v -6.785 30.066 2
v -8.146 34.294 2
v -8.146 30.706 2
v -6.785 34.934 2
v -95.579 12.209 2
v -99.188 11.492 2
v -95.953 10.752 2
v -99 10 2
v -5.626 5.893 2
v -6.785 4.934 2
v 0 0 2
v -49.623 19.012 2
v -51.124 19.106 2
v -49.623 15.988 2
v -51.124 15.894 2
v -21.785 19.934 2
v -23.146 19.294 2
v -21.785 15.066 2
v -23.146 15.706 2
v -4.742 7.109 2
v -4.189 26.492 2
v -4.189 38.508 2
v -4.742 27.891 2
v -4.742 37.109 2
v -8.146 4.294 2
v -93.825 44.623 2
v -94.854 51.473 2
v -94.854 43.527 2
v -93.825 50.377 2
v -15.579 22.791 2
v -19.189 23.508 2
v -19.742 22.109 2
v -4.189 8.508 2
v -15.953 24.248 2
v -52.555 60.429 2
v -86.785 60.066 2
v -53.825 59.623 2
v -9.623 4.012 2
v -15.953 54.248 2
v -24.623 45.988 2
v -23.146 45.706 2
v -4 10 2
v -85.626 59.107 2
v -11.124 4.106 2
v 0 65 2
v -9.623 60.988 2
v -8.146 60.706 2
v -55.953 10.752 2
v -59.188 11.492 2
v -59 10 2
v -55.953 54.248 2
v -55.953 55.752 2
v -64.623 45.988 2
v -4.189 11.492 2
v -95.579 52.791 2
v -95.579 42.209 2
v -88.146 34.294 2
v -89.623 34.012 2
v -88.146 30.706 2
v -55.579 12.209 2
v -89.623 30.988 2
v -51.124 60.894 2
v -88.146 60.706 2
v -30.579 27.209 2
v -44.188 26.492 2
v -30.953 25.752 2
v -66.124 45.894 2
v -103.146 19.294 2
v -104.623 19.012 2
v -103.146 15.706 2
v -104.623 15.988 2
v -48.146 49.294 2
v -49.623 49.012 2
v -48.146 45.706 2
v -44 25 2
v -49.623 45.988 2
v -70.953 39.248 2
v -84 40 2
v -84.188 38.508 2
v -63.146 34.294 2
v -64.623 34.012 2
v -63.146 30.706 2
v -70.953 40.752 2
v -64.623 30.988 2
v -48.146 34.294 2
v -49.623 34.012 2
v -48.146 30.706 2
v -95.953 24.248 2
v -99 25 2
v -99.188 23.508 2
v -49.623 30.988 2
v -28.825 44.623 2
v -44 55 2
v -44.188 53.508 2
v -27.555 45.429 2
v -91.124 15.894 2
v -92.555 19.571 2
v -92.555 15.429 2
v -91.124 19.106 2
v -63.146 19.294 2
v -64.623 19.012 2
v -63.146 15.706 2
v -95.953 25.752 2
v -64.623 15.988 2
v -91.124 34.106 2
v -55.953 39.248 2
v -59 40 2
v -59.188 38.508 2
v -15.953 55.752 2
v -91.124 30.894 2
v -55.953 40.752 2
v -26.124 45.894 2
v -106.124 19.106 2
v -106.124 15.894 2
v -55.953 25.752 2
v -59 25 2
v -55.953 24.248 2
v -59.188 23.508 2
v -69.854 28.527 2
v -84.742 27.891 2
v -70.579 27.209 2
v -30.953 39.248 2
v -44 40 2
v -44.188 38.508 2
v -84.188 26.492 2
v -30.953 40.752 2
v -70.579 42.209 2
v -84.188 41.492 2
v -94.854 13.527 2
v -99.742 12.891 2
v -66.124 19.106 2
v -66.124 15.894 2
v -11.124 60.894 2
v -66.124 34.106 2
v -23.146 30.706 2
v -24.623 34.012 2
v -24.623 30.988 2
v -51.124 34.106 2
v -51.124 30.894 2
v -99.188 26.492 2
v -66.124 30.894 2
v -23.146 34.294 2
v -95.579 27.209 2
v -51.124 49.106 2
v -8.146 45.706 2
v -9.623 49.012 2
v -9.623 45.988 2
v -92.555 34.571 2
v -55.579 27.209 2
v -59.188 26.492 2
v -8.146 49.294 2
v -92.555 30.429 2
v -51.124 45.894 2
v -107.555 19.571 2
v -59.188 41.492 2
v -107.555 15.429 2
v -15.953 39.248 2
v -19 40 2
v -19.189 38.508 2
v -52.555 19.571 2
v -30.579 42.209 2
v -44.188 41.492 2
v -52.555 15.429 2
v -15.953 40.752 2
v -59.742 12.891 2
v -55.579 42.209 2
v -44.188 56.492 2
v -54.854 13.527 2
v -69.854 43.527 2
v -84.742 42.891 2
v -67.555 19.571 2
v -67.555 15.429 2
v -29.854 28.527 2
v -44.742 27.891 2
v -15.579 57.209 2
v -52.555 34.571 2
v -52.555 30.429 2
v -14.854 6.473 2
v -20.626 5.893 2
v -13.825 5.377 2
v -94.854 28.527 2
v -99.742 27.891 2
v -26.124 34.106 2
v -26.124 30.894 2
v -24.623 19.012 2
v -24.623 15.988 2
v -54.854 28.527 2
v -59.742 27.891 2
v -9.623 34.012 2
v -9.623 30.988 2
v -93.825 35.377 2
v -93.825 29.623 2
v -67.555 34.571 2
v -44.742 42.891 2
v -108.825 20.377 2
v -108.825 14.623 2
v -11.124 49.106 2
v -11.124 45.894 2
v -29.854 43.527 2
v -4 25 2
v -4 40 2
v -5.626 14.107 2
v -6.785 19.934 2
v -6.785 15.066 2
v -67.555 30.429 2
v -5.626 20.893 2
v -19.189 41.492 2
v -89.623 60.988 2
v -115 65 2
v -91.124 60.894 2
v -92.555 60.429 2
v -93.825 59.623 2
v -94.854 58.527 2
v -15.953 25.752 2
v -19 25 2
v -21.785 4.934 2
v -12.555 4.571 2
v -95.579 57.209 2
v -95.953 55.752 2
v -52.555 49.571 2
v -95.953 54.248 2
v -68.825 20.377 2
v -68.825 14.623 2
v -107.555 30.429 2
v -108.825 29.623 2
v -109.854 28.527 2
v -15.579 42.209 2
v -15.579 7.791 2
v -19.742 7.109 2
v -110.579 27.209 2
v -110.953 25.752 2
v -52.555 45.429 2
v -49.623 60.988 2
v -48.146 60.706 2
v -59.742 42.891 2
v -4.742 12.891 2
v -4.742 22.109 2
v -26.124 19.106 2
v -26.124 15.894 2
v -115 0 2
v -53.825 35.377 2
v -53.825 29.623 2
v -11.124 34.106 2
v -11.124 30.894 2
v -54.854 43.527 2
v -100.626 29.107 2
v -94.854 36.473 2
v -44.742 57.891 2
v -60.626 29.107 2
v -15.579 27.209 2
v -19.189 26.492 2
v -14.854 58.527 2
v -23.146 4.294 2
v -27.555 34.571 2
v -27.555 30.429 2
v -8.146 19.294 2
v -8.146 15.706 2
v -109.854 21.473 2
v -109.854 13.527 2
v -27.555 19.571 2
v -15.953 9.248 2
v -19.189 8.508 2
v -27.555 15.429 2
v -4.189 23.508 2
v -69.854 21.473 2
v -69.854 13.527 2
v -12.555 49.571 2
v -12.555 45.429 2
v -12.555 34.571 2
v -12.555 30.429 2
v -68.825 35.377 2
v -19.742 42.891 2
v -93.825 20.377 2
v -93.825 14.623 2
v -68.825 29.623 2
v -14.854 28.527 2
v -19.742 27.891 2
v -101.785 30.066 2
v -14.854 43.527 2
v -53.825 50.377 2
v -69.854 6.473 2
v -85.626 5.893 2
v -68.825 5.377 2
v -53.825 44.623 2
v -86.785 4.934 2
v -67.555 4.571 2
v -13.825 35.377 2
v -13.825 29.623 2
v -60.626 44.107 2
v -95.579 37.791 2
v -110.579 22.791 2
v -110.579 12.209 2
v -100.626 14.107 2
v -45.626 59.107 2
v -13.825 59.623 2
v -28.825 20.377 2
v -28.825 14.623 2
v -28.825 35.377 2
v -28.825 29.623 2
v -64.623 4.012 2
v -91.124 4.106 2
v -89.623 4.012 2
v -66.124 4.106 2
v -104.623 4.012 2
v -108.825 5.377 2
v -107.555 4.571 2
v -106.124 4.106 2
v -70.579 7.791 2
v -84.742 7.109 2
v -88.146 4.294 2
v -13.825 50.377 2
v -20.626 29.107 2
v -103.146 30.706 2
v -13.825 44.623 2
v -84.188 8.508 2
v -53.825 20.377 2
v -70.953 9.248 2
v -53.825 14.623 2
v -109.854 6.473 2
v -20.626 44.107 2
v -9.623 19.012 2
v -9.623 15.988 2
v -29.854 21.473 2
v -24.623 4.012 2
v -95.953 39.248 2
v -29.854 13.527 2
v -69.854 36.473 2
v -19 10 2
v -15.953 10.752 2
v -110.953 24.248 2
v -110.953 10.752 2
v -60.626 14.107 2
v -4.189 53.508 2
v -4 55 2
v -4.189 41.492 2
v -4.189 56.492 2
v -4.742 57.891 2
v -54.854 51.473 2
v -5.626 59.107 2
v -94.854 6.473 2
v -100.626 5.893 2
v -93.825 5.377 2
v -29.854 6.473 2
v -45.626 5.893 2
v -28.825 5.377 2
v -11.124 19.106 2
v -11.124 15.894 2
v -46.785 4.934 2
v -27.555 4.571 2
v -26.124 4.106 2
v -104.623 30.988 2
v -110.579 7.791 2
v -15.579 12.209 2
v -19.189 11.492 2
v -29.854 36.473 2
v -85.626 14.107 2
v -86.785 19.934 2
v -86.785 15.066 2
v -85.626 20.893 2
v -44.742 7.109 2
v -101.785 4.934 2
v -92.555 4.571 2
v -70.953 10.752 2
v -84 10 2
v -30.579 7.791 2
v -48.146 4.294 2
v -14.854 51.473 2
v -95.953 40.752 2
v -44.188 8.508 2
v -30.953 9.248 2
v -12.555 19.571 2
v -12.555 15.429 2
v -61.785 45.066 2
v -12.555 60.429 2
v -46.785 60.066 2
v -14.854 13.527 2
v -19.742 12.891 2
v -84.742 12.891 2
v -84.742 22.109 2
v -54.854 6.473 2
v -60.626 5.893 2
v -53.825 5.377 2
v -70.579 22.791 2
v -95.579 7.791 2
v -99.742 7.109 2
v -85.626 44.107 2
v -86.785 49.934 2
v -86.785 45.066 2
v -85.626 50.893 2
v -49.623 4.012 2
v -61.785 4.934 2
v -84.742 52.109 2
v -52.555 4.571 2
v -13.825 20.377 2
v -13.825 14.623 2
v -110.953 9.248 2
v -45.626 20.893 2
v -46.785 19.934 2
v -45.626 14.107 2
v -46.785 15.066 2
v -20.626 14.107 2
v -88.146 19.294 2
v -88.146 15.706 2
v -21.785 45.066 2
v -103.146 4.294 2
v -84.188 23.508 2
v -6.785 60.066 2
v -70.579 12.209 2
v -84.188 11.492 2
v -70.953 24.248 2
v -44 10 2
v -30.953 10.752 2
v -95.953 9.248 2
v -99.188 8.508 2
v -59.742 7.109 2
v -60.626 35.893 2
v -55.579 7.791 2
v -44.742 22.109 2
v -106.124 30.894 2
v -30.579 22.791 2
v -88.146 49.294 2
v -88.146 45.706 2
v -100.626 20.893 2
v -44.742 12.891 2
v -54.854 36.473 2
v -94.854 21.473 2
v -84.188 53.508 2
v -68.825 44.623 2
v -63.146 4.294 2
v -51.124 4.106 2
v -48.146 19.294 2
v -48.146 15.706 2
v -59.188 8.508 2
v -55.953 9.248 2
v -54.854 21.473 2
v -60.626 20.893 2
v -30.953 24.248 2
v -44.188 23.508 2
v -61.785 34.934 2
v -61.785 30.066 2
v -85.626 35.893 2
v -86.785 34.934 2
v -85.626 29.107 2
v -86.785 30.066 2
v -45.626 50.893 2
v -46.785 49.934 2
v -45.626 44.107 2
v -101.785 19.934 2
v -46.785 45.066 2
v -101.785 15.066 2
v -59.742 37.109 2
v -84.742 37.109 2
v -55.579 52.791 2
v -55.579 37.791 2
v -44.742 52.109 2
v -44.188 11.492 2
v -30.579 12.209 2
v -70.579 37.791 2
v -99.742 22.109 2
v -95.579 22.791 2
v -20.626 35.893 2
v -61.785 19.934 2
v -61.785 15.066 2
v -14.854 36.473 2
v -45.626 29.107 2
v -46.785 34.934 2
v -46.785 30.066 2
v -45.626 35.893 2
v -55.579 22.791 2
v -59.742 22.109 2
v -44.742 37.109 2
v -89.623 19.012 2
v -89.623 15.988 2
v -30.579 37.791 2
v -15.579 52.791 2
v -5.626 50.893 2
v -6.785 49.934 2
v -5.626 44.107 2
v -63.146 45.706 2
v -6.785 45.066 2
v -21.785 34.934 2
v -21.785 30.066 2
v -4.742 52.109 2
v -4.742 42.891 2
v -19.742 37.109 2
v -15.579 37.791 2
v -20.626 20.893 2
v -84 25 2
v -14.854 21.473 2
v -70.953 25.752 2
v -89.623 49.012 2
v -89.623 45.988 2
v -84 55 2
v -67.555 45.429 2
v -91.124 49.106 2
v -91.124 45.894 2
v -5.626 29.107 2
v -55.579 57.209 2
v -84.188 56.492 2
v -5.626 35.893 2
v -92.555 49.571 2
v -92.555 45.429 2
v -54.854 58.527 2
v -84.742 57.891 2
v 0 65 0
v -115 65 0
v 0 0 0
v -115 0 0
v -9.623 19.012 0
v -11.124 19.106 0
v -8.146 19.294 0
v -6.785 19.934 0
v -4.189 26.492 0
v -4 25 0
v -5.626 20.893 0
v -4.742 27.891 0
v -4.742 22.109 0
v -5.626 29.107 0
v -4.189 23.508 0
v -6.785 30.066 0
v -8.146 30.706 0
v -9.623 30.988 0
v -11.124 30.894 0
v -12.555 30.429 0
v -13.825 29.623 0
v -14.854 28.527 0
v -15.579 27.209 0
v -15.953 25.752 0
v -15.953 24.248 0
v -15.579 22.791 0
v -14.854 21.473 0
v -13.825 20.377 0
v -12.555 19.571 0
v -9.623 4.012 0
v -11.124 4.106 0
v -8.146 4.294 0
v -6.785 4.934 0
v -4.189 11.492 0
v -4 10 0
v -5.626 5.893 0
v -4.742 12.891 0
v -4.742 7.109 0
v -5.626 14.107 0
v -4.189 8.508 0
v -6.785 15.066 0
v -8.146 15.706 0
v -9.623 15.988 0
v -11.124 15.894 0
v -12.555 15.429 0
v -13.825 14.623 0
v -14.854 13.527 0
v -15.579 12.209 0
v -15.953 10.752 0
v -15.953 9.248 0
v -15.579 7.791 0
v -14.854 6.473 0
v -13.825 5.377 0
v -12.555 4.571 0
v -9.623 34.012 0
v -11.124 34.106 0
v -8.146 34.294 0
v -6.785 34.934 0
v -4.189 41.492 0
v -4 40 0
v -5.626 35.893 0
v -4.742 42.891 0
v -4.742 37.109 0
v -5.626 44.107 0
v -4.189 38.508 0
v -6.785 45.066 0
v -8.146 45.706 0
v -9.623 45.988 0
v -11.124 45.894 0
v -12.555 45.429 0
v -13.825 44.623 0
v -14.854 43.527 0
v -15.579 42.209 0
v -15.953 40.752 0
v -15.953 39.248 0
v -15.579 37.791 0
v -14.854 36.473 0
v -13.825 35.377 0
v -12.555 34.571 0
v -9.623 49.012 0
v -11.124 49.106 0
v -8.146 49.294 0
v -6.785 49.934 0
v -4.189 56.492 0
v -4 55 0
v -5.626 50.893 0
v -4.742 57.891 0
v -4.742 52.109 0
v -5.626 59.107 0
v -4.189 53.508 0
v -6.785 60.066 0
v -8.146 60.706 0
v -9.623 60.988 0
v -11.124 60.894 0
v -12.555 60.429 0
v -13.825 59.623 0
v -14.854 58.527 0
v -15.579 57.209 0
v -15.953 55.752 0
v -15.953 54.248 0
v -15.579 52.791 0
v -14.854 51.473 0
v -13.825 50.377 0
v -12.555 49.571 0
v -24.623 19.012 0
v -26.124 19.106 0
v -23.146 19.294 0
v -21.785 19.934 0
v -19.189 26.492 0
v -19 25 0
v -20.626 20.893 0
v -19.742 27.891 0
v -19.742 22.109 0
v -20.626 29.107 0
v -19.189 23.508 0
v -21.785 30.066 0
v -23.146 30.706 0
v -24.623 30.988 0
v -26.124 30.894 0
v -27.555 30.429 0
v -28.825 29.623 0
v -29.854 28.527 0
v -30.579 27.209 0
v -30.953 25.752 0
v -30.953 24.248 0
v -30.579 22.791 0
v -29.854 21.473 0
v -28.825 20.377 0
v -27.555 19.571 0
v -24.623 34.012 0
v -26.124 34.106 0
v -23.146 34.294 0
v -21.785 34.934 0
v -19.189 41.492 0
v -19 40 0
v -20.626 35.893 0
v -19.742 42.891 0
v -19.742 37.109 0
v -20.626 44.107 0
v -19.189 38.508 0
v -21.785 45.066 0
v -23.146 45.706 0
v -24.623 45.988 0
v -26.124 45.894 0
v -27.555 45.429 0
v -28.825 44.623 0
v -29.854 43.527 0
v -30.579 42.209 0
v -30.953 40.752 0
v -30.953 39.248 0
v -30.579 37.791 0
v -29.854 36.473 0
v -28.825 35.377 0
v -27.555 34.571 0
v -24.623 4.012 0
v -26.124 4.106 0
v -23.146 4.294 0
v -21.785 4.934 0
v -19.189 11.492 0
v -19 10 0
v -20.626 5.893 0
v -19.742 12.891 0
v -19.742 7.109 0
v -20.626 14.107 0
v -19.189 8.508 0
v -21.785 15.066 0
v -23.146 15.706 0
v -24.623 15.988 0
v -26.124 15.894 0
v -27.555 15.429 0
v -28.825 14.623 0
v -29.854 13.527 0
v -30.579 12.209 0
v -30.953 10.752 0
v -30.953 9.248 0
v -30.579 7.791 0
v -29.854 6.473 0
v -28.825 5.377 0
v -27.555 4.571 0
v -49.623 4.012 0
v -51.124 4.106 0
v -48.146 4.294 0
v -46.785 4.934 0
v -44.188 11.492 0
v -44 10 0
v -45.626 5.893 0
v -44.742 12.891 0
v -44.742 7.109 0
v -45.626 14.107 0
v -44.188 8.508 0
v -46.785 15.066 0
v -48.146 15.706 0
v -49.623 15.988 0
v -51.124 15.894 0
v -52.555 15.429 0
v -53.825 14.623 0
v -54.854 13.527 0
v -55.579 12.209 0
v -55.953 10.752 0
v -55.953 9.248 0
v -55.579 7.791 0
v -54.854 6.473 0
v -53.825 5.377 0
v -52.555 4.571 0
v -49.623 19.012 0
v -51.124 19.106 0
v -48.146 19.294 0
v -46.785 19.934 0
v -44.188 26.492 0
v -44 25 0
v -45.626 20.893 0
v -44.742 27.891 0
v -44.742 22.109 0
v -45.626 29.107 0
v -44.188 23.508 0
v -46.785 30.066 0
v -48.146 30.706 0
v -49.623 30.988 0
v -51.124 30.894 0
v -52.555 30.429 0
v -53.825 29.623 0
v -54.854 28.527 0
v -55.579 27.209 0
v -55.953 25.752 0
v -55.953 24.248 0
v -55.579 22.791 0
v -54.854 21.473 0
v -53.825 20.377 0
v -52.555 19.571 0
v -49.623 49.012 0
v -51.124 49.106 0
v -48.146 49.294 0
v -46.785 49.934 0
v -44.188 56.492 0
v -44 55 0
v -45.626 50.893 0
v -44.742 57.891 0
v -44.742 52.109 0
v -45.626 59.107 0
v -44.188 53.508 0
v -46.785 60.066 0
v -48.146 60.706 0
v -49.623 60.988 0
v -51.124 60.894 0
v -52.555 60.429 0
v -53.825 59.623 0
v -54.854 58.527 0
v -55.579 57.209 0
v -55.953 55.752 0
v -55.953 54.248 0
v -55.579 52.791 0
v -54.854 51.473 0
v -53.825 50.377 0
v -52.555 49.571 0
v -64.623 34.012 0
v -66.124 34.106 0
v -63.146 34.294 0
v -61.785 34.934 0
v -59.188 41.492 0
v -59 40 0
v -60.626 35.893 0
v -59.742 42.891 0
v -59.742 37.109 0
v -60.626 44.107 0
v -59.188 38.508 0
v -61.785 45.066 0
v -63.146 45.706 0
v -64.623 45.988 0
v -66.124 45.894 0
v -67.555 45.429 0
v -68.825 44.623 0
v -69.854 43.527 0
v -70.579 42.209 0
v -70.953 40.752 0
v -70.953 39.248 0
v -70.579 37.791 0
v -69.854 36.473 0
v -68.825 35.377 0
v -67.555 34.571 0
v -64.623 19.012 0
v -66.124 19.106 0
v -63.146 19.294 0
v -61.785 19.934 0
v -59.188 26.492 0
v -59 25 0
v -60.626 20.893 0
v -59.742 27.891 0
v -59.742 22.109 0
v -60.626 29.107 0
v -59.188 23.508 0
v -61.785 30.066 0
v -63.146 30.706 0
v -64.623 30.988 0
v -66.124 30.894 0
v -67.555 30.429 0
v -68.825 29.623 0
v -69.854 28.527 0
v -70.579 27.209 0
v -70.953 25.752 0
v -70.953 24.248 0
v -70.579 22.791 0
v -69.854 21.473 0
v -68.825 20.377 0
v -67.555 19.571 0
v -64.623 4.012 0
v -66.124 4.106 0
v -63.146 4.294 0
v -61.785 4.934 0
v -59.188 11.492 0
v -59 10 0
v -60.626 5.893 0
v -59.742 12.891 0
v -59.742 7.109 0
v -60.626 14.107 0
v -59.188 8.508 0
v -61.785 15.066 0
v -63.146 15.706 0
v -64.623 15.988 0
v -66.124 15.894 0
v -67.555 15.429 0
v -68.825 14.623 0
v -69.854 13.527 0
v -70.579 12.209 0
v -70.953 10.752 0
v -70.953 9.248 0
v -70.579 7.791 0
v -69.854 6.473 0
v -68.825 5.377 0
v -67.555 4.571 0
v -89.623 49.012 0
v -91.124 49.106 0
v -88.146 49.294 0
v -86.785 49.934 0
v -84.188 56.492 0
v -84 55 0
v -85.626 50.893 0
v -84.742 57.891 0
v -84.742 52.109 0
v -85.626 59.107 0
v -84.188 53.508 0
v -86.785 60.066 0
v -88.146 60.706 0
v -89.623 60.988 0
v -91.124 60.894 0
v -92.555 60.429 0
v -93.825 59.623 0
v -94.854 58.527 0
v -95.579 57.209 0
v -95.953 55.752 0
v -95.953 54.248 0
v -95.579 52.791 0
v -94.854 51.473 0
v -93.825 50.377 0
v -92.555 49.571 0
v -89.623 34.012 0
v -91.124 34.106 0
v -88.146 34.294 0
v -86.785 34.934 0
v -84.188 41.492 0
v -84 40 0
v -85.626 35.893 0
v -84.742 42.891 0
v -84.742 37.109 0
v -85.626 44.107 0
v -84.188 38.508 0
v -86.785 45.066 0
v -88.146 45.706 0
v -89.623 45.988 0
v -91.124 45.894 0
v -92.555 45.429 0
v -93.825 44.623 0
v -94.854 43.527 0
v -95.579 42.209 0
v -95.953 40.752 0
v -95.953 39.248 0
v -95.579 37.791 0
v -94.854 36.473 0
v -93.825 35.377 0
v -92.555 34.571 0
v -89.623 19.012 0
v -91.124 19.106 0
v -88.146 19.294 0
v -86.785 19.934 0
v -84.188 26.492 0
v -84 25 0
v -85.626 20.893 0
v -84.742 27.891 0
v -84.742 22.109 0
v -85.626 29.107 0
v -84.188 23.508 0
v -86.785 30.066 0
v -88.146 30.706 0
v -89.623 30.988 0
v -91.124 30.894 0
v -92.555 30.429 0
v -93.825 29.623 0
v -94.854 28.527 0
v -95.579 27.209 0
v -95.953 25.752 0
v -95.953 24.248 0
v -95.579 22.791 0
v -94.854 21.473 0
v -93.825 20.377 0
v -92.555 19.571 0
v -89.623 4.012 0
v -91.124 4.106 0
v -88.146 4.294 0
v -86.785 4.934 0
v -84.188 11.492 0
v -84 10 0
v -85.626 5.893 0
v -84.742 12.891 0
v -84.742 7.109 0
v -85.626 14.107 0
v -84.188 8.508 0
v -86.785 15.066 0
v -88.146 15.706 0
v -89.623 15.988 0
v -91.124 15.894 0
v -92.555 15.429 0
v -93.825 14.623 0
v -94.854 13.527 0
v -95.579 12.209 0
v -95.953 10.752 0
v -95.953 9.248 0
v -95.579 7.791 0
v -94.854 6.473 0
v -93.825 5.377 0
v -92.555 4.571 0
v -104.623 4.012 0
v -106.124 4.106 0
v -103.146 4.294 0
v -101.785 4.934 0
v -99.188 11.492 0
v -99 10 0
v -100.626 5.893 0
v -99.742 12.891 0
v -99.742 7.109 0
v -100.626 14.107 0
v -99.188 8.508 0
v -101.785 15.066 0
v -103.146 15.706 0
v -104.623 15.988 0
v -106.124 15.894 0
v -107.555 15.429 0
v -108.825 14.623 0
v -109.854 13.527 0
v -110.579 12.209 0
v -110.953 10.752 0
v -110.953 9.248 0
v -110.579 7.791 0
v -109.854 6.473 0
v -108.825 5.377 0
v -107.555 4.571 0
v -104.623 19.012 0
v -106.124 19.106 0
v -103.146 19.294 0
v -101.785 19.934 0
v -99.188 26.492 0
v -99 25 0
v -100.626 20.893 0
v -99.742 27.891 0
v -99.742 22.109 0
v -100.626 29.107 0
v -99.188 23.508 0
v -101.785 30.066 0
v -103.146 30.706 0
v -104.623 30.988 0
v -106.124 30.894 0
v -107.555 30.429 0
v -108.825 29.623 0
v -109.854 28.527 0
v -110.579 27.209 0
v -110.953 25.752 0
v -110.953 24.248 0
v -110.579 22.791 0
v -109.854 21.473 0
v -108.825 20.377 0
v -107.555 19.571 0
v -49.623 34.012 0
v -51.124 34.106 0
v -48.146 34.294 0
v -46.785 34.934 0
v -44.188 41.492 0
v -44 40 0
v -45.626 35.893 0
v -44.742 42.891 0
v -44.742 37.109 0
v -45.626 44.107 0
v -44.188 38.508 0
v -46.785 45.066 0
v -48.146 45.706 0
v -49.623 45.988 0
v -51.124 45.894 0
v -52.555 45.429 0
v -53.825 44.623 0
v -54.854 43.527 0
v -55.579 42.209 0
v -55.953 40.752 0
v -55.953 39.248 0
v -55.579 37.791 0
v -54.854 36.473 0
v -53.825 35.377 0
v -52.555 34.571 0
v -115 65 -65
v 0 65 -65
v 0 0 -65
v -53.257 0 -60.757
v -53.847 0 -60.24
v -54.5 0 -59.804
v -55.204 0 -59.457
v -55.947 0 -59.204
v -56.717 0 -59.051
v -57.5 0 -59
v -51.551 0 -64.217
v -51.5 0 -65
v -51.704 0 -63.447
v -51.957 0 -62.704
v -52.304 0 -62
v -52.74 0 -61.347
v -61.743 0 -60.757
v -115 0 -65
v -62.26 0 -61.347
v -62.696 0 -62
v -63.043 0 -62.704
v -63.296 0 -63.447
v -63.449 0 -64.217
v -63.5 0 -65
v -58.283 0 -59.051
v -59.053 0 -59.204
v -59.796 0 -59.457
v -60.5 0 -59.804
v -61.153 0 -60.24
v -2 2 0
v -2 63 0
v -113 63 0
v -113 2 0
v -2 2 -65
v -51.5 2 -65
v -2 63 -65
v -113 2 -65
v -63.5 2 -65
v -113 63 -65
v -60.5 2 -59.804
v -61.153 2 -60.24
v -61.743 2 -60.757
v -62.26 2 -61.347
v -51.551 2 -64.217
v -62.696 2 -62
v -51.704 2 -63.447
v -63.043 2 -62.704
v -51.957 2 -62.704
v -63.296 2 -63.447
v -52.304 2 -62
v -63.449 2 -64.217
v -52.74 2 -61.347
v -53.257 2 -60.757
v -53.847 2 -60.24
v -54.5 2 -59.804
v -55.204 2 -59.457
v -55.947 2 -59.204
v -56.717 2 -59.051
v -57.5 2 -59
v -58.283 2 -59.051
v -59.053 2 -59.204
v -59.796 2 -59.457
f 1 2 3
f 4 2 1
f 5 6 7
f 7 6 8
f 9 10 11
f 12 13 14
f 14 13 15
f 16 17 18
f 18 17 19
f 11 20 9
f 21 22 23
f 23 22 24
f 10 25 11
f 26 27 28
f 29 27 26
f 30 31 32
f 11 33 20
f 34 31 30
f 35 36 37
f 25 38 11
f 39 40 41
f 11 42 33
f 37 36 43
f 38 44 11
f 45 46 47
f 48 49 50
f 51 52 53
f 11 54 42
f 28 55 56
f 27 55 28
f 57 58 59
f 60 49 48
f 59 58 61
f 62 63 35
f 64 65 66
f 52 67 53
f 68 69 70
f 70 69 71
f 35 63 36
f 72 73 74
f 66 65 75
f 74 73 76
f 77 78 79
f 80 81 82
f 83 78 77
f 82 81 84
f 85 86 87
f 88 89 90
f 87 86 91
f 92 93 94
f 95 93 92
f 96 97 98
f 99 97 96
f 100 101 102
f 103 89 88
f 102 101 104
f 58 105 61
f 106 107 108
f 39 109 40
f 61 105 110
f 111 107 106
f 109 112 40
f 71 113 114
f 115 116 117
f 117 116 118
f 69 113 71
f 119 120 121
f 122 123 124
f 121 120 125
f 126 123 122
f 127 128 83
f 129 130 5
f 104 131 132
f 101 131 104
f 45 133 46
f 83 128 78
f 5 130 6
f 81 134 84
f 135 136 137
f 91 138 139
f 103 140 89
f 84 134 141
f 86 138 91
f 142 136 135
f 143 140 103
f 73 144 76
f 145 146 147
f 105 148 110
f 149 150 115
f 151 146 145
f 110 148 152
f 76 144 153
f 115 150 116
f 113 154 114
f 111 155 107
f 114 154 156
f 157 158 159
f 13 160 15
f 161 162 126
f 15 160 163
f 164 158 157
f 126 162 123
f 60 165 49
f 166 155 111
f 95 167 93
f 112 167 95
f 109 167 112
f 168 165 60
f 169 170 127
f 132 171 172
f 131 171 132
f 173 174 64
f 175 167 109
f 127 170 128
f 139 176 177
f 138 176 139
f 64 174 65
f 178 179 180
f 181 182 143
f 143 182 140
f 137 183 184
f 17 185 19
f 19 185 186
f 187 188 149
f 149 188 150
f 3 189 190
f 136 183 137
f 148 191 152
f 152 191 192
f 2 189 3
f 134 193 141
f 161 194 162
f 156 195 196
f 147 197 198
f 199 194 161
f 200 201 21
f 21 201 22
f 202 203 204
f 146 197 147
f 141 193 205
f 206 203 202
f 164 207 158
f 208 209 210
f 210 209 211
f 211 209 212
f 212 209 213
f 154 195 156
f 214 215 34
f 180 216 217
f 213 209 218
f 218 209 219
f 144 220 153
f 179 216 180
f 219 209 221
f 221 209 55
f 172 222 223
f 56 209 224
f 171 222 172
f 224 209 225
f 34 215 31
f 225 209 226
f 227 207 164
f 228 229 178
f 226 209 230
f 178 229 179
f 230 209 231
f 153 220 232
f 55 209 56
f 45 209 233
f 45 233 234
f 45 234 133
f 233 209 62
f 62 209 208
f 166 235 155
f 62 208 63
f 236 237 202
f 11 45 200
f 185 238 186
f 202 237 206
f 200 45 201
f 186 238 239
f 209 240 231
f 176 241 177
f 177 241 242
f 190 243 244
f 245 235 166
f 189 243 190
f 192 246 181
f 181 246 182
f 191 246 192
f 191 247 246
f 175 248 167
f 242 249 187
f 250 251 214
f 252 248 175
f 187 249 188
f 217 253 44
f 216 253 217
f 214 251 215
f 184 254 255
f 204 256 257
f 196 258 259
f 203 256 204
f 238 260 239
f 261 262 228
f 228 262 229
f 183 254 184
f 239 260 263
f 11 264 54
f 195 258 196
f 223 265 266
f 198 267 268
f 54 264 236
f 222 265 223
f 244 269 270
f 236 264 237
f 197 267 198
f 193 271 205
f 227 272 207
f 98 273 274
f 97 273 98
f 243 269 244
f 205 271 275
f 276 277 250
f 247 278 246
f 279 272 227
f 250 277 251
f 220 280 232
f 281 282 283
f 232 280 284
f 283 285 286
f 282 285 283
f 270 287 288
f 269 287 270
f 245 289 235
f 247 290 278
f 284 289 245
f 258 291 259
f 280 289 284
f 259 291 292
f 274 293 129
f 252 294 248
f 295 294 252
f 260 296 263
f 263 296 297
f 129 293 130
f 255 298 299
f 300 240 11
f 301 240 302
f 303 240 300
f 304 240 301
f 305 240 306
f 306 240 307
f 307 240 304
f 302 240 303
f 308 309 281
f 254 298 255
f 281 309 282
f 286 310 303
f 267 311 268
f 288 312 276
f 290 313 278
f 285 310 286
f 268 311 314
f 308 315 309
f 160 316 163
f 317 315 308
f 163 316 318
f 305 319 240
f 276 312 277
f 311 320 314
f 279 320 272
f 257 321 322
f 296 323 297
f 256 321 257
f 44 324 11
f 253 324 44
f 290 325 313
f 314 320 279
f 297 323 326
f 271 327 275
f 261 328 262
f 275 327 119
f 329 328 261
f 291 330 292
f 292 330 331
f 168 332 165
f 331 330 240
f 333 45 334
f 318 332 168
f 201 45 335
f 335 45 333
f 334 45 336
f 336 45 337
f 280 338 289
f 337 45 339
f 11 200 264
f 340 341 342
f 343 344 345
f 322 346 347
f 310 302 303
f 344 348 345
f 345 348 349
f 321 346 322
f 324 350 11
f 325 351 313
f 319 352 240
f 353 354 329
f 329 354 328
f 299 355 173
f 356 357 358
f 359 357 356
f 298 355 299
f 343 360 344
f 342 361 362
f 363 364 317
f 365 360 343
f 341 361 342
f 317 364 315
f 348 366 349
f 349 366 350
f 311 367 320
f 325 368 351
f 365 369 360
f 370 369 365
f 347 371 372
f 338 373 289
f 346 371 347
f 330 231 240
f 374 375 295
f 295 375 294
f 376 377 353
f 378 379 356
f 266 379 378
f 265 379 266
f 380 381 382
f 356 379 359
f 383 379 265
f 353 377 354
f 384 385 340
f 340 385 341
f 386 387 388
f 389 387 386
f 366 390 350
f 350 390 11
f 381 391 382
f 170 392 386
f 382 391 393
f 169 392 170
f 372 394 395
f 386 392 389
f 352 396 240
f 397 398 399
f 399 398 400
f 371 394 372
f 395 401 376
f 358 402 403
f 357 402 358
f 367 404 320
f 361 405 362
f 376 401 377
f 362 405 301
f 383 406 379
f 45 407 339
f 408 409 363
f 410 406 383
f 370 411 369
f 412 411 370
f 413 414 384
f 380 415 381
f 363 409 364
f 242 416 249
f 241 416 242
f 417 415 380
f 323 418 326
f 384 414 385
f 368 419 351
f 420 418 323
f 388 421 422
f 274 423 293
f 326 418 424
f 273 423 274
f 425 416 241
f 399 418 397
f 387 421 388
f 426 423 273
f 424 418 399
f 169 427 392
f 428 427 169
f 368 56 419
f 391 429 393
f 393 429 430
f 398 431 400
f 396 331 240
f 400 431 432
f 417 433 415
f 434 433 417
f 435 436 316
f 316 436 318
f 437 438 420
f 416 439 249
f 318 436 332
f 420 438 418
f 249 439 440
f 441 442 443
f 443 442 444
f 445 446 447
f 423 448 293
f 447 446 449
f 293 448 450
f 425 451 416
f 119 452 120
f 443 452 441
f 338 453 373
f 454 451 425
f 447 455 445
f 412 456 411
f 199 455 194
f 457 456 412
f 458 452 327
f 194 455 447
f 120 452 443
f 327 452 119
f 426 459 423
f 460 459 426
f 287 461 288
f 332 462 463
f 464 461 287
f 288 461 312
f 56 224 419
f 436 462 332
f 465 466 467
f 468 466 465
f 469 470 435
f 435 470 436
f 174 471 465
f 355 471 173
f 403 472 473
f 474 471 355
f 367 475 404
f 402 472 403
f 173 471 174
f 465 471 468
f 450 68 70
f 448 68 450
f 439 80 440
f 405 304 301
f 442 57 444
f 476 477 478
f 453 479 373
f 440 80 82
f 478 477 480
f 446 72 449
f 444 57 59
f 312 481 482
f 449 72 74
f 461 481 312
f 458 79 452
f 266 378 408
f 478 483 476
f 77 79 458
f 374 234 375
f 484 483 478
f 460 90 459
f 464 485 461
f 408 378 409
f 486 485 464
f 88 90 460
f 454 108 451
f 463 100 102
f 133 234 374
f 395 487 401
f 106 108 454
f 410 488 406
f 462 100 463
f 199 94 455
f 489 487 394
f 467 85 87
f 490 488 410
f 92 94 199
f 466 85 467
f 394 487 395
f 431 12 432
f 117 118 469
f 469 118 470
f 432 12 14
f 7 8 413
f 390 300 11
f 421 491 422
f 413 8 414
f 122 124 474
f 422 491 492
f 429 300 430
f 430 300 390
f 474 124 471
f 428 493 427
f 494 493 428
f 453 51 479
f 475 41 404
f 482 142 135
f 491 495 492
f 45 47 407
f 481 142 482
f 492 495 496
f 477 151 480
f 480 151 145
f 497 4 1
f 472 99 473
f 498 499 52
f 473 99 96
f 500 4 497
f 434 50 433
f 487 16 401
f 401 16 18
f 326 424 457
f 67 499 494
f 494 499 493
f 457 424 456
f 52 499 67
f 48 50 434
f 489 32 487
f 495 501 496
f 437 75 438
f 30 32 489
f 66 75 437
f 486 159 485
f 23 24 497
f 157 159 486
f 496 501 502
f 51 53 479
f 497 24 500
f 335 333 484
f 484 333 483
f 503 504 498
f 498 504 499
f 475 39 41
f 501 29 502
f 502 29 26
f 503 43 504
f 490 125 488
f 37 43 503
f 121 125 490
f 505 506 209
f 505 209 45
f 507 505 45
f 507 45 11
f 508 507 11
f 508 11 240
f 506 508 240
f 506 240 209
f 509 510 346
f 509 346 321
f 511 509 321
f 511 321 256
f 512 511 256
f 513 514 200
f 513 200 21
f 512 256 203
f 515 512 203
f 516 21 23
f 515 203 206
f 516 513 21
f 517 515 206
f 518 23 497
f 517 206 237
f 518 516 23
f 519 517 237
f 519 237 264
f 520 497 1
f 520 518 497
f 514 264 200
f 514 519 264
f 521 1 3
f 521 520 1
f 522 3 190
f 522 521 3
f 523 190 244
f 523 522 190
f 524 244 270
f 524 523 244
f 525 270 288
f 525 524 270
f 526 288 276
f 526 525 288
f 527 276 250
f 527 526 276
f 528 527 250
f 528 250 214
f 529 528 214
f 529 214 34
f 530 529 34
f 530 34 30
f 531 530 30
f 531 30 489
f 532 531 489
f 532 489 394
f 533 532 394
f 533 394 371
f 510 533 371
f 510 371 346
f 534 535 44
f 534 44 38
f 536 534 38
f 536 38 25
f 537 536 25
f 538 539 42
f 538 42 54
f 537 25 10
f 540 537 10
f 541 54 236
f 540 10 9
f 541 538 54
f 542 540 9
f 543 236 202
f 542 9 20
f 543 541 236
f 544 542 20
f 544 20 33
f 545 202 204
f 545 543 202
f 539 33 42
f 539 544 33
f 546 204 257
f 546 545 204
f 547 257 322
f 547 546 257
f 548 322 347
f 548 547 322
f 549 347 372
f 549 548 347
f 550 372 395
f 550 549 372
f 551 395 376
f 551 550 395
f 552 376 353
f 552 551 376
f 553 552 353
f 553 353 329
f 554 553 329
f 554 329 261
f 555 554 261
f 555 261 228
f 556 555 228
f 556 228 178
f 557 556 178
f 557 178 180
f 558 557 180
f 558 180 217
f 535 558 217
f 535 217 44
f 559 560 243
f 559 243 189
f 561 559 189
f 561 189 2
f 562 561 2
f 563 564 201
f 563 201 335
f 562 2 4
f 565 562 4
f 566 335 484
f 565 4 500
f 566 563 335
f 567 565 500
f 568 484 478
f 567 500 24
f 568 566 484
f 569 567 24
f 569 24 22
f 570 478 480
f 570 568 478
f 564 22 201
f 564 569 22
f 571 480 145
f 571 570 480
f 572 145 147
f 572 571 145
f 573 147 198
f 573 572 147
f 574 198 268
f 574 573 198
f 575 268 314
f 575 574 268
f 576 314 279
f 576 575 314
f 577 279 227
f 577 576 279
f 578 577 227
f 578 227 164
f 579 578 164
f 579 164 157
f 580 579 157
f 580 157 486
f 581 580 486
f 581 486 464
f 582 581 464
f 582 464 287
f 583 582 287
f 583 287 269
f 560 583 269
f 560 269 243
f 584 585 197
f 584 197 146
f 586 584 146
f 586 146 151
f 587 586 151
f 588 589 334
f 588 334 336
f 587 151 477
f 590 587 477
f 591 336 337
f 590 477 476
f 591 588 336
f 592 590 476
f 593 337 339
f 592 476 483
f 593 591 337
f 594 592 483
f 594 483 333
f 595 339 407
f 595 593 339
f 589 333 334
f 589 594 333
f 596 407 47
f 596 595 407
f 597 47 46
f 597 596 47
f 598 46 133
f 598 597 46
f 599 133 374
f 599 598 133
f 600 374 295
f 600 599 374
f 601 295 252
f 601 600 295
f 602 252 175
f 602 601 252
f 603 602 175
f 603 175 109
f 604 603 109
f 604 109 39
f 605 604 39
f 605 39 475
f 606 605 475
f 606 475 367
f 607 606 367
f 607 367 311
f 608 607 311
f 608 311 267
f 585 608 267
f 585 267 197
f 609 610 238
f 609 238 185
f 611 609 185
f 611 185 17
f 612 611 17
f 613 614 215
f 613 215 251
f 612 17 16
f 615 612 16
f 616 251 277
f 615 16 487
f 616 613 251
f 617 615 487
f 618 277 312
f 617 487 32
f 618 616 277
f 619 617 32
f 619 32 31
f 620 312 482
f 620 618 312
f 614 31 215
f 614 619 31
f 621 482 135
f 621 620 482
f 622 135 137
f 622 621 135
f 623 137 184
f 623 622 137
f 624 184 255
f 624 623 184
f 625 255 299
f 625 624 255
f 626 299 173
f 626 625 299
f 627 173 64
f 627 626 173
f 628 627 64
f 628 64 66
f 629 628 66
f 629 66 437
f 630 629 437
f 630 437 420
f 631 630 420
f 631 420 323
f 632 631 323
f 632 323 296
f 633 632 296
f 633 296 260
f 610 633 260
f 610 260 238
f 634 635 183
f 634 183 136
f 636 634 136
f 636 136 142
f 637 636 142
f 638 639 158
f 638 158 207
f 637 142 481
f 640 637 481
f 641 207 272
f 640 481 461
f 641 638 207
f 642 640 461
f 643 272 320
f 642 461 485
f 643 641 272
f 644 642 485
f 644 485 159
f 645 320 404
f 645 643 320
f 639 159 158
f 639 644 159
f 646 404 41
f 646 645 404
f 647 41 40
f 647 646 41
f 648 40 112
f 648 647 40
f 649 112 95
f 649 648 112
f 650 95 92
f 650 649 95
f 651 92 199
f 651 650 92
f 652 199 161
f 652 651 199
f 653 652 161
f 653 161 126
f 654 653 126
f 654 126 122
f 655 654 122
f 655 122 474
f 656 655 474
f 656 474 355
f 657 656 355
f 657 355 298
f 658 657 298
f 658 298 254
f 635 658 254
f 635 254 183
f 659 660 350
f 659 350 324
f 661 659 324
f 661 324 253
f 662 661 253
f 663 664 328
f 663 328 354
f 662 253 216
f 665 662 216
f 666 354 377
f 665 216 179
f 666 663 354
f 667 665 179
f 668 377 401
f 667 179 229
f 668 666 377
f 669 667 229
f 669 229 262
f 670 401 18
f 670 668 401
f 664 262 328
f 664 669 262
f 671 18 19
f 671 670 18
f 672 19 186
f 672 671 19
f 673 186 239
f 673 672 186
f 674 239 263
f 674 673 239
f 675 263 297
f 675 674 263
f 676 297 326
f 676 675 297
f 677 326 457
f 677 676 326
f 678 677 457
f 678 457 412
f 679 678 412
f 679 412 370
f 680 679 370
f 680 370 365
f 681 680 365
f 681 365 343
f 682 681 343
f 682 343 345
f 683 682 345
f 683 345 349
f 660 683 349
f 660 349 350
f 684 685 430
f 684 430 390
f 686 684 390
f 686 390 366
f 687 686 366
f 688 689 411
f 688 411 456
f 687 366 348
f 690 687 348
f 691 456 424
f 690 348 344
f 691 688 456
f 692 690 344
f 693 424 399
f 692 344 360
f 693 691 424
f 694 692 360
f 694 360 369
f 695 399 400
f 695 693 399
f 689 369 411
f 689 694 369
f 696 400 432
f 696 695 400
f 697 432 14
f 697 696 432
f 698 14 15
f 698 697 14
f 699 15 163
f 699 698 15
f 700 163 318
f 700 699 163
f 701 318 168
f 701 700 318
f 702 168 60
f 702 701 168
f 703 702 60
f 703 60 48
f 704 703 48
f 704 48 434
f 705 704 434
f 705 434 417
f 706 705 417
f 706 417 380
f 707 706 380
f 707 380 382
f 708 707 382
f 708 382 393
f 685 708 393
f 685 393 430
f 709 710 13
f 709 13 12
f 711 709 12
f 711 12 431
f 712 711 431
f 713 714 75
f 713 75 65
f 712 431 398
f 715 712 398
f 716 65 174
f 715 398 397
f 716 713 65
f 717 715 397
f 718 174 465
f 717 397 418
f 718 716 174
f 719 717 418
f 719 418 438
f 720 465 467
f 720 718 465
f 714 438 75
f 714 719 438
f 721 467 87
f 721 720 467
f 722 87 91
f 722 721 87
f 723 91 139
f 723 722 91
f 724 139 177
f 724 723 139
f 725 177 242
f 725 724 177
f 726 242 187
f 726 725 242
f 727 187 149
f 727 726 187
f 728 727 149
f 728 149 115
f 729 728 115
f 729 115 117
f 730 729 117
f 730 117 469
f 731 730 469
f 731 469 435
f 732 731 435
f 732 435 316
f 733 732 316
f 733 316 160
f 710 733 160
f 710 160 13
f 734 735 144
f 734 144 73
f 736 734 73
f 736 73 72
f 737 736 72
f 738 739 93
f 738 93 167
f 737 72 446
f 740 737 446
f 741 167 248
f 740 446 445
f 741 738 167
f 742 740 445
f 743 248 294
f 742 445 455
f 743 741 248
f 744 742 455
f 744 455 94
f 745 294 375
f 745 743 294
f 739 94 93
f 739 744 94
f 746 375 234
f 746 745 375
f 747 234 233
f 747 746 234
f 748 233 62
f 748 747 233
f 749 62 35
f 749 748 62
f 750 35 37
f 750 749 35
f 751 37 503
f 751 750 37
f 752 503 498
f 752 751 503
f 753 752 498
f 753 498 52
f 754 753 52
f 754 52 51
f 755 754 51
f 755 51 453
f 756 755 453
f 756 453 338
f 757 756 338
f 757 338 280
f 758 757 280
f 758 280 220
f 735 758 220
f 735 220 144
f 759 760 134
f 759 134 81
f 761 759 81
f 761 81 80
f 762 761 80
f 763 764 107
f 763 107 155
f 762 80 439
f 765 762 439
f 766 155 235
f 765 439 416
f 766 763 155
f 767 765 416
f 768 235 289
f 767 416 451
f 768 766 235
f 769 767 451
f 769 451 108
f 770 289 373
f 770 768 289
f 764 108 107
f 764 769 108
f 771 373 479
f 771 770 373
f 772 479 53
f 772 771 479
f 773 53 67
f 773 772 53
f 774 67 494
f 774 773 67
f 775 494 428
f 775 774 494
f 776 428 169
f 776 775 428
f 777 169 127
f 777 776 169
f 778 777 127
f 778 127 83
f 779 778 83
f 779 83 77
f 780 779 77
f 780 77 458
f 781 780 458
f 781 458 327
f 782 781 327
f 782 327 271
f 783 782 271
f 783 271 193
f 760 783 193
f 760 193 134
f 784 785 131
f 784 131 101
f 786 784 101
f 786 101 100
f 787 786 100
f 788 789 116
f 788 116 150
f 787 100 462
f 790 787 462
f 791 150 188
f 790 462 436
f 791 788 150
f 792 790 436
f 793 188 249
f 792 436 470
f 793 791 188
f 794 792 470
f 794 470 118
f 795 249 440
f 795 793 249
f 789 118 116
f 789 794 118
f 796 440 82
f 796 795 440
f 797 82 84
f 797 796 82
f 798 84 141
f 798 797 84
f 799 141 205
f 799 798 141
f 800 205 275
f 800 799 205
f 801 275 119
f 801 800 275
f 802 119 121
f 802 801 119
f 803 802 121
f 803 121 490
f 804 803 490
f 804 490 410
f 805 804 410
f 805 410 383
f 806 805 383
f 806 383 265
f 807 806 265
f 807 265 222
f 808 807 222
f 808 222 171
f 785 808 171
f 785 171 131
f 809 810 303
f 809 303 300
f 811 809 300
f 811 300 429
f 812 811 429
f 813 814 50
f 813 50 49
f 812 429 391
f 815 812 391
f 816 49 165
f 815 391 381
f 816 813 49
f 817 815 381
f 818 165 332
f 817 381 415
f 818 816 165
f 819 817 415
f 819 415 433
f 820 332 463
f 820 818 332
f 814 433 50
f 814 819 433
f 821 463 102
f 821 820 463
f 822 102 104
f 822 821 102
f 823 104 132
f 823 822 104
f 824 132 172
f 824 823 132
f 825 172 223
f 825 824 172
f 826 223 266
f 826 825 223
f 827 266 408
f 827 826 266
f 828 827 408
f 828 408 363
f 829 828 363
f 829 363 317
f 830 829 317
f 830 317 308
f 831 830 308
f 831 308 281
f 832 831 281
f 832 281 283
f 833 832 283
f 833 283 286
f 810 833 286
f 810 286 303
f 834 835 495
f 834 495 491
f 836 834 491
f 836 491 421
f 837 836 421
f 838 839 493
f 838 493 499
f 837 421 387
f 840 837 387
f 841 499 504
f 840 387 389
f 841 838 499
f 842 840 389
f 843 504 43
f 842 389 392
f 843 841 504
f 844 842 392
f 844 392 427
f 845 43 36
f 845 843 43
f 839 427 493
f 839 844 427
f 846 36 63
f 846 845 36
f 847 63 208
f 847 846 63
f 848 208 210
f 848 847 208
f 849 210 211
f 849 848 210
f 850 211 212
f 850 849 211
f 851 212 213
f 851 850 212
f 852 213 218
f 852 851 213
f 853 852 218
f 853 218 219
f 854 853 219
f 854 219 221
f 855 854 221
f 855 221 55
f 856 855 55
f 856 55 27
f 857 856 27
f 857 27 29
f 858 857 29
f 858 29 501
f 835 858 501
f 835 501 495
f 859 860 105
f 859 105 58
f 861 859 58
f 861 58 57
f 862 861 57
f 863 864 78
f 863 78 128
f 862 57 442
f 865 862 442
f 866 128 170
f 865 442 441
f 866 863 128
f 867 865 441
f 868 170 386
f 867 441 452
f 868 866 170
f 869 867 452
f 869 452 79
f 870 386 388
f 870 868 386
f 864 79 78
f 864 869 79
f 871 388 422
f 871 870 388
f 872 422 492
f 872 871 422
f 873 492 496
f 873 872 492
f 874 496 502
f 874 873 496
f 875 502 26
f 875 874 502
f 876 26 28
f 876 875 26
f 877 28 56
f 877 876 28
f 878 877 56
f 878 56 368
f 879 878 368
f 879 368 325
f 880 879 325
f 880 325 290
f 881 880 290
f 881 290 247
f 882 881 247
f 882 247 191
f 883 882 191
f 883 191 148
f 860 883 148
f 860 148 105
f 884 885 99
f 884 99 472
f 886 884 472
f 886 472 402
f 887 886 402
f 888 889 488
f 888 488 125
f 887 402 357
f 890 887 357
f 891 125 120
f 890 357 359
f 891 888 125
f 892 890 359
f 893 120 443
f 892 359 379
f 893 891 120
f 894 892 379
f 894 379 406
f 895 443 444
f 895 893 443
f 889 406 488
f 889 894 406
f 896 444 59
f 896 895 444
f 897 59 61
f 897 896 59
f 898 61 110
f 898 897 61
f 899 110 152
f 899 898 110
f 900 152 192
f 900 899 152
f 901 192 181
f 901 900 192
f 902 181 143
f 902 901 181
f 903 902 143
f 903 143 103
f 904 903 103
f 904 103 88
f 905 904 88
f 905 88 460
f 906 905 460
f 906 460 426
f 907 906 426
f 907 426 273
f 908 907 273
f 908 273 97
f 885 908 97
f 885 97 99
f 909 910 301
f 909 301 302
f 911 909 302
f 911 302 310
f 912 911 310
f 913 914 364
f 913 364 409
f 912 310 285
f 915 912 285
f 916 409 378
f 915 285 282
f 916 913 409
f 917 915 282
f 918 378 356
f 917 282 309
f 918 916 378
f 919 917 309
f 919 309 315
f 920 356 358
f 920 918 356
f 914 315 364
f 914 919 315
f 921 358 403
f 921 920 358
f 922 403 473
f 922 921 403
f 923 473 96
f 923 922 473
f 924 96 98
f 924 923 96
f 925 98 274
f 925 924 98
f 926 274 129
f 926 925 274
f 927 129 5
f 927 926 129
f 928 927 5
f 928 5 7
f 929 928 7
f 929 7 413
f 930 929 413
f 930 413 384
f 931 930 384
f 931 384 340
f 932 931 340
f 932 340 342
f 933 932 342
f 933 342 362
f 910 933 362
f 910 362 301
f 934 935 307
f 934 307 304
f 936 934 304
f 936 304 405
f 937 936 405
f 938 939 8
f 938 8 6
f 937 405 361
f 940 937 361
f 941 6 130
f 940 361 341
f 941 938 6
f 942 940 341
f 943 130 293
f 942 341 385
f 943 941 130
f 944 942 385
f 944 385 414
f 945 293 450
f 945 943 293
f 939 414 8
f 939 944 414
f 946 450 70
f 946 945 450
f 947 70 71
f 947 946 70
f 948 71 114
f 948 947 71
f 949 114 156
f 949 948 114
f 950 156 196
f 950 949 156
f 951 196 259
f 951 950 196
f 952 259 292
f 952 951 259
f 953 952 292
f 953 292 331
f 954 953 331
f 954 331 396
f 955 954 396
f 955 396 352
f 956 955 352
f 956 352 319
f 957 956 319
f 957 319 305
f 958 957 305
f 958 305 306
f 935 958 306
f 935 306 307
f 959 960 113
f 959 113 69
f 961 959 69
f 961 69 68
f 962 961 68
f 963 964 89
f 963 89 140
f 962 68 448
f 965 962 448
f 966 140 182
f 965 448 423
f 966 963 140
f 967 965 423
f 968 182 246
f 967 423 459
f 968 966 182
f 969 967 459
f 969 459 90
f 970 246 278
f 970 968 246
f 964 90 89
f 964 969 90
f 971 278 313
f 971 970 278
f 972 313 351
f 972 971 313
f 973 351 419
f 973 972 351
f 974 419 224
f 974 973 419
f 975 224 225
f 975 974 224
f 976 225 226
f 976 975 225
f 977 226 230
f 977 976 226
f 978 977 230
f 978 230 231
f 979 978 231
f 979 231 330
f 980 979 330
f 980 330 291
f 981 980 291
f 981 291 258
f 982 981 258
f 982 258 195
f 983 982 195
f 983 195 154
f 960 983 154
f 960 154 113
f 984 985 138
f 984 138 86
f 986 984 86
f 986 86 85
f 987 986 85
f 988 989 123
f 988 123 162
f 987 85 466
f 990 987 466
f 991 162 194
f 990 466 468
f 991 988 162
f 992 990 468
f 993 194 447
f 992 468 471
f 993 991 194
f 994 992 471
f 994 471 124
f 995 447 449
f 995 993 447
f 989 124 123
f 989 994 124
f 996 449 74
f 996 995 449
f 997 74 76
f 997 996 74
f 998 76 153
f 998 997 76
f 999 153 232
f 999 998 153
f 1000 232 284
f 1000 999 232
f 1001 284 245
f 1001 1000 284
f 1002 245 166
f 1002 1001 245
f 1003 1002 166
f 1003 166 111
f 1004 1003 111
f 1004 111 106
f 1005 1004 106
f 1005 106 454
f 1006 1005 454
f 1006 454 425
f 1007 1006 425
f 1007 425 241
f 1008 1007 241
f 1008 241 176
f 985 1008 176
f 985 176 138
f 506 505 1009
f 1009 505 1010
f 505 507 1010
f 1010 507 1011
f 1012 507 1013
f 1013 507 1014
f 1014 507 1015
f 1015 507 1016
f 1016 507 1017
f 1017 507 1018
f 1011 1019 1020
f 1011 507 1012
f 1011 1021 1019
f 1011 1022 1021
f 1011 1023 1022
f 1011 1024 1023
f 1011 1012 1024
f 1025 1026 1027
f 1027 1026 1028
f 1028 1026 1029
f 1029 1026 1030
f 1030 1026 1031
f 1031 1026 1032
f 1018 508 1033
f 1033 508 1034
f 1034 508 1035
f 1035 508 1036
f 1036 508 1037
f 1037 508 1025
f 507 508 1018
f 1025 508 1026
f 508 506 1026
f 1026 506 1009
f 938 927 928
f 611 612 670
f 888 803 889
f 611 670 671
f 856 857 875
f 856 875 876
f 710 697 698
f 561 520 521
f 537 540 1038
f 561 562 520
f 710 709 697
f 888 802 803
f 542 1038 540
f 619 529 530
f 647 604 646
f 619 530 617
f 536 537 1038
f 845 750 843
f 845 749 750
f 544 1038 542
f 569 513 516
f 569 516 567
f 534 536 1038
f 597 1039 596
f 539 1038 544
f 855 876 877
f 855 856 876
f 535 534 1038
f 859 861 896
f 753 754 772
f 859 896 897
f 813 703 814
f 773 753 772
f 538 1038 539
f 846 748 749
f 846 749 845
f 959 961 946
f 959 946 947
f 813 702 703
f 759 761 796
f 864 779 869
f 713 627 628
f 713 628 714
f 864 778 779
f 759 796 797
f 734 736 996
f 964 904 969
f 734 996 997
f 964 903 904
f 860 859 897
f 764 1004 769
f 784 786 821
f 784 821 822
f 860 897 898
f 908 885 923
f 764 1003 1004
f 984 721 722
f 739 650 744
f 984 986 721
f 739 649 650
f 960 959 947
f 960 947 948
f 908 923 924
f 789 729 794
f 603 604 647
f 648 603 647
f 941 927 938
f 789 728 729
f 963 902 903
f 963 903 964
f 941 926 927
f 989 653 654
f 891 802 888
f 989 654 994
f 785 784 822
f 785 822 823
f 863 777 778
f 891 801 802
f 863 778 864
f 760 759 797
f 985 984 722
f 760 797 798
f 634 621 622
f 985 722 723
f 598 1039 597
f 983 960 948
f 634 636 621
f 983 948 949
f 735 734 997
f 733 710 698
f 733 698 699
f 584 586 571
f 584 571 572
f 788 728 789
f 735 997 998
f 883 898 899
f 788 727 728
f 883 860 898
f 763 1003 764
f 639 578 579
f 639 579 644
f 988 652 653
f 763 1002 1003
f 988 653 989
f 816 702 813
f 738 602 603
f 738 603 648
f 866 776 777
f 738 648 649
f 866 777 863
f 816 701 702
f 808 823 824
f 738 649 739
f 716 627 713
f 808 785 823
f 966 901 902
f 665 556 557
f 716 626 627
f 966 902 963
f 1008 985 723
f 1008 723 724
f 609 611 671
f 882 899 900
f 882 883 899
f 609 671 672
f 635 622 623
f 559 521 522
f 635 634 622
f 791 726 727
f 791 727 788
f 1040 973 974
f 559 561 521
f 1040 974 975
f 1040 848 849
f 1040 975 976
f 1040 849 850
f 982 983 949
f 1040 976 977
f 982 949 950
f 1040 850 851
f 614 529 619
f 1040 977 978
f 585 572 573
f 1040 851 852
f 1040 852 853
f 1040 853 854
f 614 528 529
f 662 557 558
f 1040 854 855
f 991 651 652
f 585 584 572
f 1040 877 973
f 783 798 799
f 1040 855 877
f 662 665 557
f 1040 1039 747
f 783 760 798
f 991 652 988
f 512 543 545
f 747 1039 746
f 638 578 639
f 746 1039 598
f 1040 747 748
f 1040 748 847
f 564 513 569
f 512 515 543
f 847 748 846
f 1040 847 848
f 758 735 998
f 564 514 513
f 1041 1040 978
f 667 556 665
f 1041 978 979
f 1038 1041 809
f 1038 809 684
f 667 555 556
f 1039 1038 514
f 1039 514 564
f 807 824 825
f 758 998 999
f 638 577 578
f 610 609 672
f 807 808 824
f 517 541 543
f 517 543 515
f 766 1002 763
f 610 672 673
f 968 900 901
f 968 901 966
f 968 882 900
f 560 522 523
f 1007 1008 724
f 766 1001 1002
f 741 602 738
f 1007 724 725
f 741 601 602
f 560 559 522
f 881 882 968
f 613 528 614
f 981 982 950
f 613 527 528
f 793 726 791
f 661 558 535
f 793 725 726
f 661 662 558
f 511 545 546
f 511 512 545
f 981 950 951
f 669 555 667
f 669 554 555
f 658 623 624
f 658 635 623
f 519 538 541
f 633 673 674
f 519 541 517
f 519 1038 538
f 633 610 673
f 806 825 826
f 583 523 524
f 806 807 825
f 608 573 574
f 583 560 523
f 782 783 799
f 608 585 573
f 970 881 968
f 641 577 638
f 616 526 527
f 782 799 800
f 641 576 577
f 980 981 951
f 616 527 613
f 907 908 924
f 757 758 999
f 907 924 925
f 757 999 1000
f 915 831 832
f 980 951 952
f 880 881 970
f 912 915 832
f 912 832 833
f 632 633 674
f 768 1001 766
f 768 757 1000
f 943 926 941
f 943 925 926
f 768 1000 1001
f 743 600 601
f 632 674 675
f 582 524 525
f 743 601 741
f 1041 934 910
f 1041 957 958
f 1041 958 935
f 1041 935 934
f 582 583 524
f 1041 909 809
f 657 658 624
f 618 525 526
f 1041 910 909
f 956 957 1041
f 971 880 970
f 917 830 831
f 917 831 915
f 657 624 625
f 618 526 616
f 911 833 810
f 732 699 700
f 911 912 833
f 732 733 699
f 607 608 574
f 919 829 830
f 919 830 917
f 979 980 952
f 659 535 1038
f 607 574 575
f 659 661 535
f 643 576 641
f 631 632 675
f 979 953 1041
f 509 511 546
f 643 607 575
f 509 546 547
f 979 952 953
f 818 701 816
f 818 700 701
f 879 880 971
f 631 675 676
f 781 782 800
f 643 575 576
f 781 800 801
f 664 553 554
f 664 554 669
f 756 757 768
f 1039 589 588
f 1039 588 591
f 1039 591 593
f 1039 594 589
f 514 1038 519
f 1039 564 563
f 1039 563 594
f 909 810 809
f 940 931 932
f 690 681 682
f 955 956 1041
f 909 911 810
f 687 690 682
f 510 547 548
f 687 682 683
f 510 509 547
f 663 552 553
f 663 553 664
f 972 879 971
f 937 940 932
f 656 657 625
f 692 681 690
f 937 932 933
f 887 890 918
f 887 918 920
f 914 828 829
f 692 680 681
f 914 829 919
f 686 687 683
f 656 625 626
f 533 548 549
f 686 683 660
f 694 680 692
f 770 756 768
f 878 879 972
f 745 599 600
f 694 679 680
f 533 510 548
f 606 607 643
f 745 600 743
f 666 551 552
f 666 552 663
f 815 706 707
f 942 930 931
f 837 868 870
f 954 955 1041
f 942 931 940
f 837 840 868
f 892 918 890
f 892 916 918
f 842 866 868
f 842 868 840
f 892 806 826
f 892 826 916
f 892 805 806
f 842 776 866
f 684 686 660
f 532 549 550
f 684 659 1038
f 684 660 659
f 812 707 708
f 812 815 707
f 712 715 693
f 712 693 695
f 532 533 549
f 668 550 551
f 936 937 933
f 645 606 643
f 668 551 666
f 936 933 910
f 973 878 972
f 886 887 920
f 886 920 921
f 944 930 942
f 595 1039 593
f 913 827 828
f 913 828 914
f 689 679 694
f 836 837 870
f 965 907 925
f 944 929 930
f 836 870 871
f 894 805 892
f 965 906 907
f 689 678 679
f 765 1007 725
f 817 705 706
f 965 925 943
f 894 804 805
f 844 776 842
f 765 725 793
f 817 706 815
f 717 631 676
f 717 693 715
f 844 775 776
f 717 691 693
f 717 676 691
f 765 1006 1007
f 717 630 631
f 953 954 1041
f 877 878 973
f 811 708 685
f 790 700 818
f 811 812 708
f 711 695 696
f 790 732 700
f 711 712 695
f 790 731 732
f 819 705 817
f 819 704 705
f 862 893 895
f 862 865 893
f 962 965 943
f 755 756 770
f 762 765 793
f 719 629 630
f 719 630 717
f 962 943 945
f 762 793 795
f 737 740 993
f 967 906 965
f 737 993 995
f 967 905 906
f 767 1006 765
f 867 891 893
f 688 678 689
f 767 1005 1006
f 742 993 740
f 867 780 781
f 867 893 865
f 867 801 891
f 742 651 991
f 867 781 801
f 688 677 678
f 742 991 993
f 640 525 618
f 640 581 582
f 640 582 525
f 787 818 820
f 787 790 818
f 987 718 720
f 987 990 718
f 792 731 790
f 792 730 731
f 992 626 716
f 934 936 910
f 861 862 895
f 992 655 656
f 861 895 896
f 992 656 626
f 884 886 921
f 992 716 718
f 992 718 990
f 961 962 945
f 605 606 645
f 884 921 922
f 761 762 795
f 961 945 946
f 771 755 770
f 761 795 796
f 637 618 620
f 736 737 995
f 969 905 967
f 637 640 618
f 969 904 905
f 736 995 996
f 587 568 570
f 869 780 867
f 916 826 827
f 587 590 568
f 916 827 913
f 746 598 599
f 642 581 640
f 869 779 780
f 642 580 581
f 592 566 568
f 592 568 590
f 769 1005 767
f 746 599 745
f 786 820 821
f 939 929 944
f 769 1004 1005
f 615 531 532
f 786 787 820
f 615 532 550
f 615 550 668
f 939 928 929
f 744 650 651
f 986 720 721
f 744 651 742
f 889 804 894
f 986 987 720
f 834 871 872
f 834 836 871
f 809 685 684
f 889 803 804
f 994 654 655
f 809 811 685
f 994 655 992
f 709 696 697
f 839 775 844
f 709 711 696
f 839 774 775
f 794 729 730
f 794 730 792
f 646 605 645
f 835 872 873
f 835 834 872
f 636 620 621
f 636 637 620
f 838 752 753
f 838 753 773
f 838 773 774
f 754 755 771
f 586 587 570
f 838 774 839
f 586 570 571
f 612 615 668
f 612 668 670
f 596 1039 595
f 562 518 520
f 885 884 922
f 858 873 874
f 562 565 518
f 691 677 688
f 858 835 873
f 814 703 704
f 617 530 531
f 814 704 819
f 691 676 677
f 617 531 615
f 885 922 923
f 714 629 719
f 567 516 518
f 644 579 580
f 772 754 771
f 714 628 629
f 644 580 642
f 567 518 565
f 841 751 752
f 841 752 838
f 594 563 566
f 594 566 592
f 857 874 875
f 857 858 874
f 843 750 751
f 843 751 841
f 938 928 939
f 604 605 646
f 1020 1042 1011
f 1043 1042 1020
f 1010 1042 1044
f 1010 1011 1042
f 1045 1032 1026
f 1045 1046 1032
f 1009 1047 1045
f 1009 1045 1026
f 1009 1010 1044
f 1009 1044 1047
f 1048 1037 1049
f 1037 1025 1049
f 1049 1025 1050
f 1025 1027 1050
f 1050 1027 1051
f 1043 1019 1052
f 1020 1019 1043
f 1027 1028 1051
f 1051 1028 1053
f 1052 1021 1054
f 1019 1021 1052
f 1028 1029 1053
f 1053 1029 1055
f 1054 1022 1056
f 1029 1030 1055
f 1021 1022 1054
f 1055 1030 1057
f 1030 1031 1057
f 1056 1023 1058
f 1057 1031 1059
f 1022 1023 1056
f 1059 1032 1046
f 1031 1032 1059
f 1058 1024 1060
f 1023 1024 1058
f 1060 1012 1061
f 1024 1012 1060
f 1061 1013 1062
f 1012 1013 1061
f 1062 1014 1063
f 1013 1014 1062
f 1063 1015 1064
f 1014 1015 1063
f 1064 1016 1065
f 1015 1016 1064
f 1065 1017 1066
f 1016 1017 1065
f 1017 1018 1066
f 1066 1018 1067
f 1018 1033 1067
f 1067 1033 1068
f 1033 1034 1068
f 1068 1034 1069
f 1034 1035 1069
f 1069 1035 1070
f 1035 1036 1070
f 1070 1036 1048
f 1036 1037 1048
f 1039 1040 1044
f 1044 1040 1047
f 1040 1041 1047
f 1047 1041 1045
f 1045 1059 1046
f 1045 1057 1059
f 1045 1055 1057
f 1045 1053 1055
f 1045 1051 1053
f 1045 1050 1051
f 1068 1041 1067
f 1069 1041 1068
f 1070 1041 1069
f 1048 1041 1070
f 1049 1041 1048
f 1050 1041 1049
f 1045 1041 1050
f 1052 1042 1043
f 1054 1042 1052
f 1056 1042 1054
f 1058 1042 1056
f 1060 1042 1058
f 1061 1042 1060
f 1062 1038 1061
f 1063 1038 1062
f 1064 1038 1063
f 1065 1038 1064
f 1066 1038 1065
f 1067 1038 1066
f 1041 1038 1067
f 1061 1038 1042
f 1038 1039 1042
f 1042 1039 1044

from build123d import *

# Parameters (mm, degrees)
SKETCH_W      = 115
SKETCH_H      = 65
SKETCH_R      = 6
PAD_DEPTH     = 2
SKETCH001_W   = 115
SKETCH001_H   = 65
SKETCH001_W_2 = 111
SKETCH001_H_2 = 61
PAD001_DEPTH  = 65
SKETCH002_R   = 6
POCKET_DEPTH  = 2


with BuildPart() as part:
    # Sketch → Pad (new body)
    with BuildSketch(Plane.XY):
        with Locations((-57.5, 32.5)):
            Rectangle(SKETCH_W, SKETCH_H)
        with Locations((-10, 25)):
            Circle(SKETCH_R, mode=Mode.SUBTRACT)
        with Locations((-10, 10)):
            Circle(SKETCH_R, mode=Mode.SUBTRACT)
        with Locations((-10, 40)):
            Circle(SKETCH_R, mode=Mode.SUBTRACT)
        with Locations((-10, 55)):
            Circle(SKETCH_R, mode=Mode.SUBTRACT)
        with Locations((-25, 25)):
            Circle(SKETCH_R, mode=Mode.SUBTRACT)
        with Locations((-25, 40)):
            Circle(SKETCH_R, mode=Mode.SUBTRACT)
        with Locations((-25, 10)):
            Circle(SKETCH_R, mode=Mode.SUBTRACT)
        with Locations((-50, 10)):
            Circle(SKETCH_R, mode=Mode.SUBTRACT)
        with Locations((-50, 25)):
            Circle(SKETCH_R, mode=Mode.SUBTRACT)
        with Locations((-50, 40)):
            Circle(SKETCH_R, mode=Mode.SUBTRACT)
        with Locations((-50, 55)):
            Circle(SKETCH_R, mode=Mode.SUBTRACT)
        with Locations((-65, 40)):
            Circle(SKETCH_R, mode=Mode.SUBTRACT)
        with Locations((-65, 25)):
            Circle(SKETCH_R, mode=Mode.SUBTRACT)
        with Locations((-65, 10)):
            Circle(SKETCH_R, mode=Mode.SUBTRACT)
        with Locations((-90, 55)):
            Circle(SKETCH_R, mode=Mode.SUBTRACT)
        with Locations((-90, 40)):
            Circle(SKETCH_R, mode=Mode.SUBTRACT)
        with Locations((-90, 25)):
            Circle(SKETCH_R, mode=Mode.SUBTRACT)
        with Locations((-90, 10)):
            Circle(SKETCH_R, mode=Mode.SUBTRACT)
        with Locations((-105, 10)):
            Circle(SKETCH_R, mode=Mode.SUBTRACT)
        with Locations((-105, 25)):
            Circle(SKETCH_R, mode=Mode.SUBTRACT)
    extrude(amount=PAD_DEPTH)

    # Sketch001 (on Face25 of Pad) → Pad001 (join)
    with BuildSketch(Plane(origin=(0, 0, 0), x_dir=(1, 0, 0), z_dir=(0, 0, -1))):
        with Locations((-57.5, -32.5)):
            Rectangle(SKETCH001_W, SKETCH001_H)
        with Locations((-57.5, -32.5)):
            Rectangle(SKETCH001_W_2, SKETCH001_H_2, mode=Mode.SUBTRACT)
    extrude(amount=PAD001_DEPTH)

    # Sketch002 (on Face28 of Pad001) → Pocket (cut)
    with BuildSketch(Plane.XZ):
        with Locations((-57.5, -65)):
            Circle(SKETCH002_R)
    extrude(amount=-POCKET_DEPTH, mode=Mode.SUBTRACT)


solid = part.part
